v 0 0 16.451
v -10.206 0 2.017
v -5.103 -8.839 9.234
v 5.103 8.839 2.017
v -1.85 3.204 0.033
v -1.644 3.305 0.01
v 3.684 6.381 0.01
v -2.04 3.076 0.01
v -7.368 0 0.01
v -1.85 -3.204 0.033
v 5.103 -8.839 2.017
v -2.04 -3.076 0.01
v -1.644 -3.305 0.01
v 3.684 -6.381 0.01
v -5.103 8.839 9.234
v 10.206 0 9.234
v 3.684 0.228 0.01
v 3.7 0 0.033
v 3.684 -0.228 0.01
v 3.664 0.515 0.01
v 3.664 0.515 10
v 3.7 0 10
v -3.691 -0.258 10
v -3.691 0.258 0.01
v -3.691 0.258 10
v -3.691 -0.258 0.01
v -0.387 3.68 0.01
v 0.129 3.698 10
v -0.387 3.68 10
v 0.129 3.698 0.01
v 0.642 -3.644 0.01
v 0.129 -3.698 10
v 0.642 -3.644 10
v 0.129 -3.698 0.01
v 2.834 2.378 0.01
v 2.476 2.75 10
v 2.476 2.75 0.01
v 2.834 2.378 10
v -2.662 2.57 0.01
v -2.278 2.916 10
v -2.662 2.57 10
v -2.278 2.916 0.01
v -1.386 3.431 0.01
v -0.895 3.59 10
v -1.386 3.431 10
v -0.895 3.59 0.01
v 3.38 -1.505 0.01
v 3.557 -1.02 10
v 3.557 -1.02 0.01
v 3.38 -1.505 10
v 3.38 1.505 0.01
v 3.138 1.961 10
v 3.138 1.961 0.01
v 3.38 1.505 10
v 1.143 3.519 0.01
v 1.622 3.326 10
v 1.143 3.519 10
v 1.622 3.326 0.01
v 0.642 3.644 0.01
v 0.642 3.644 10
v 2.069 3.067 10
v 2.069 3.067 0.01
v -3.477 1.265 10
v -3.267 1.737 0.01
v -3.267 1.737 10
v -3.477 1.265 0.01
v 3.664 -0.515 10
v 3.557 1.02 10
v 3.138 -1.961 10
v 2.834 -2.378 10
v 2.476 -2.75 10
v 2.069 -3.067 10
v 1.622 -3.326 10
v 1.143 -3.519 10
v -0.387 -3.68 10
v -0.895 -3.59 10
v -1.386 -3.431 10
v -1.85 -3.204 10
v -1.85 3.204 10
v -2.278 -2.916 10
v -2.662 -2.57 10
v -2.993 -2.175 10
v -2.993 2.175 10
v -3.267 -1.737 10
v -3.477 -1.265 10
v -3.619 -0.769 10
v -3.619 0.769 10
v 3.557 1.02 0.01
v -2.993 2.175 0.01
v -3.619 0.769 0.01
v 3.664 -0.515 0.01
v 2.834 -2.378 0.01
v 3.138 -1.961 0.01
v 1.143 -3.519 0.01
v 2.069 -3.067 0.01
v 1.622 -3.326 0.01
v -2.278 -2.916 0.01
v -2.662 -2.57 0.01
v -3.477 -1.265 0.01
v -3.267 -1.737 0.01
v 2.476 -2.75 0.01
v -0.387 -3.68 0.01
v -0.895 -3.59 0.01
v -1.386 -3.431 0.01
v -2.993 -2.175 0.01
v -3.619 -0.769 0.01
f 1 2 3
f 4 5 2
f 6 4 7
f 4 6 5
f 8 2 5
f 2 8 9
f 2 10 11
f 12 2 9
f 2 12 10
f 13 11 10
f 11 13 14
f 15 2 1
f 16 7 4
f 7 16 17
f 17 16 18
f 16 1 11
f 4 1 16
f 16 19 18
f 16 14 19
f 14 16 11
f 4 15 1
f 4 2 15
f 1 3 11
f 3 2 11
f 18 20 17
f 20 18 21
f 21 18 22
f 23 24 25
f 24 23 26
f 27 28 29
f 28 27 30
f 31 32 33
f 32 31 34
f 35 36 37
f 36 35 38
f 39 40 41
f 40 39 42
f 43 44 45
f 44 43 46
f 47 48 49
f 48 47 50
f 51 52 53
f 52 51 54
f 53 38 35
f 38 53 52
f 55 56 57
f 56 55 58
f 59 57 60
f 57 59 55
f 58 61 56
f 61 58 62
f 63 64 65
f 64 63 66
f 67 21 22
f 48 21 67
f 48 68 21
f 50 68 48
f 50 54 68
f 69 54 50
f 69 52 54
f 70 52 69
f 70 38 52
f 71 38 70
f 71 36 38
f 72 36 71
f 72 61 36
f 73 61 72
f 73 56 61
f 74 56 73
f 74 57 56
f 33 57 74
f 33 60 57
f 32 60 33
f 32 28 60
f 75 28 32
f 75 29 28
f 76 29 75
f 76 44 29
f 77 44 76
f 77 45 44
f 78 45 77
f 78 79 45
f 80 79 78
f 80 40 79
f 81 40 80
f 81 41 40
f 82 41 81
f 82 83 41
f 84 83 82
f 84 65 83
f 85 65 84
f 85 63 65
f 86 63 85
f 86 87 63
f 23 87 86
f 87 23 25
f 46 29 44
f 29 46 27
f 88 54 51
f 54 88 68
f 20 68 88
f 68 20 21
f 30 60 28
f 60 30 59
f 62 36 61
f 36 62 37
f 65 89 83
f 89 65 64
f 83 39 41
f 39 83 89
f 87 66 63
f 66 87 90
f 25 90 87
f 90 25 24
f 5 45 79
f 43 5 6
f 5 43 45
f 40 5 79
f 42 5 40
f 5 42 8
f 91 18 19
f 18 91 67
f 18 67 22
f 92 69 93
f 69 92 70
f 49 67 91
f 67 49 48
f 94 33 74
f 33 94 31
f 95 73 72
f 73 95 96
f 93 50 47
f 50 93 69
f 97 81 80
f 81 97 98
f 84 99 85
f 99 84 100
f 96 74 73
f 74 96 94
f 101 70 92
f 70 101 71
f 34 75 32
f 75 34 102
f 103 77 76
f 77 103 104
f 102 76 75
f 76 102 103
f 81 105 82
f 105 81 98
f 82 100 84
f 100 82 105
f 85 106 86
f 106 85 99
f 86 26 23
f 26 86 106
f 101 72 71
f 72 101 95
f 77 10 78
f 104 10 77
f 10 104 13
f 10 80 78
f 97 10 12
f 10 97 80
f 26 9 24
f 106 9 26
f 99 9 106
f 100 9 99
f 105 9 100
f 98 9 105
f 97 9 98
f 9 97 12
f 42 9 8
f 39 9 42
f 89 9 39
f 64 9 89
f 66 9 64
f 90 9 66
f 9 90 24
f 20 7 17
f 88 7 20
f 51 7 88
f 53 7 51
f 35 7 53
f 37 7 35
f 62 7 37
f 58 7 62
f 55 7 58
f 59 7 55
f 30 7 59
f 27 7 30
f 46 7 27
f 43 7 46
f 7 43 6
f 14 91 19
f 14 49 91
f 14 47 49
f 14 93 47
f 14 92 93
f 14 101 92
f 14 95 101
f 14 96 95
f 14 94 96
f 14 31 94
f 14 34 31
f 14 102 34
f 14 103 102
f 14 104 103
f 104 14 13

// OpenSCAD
// -*- mode: SCAD ; c-file-style: "ellemtel" ; coding: utf-8 -*-
//
// bukishe Ventilkappe. Für cube-Fahrräder
//
// © 2017 Roland Sieker <ospalh@gmail.com>
// Licence: CC-BY-SA 4.0

r = 7.4/2;
h=10;

e = 12.5;
ff=5.2;
ms=0.01;

difference()
{
   translate([0, 0, -ff])
   {
      rotate([0,-0.5*acos(-1/3), 0])
      {
         rotate([0,0, -45])
         {
            cube(e);
         }
      }
   }
   cylinder(r=r,h=h, $fn=45);
   translate([0, 0, -2*e])
   {
      cylinder(r=2*e, h=2*e+ms);
   }
}
